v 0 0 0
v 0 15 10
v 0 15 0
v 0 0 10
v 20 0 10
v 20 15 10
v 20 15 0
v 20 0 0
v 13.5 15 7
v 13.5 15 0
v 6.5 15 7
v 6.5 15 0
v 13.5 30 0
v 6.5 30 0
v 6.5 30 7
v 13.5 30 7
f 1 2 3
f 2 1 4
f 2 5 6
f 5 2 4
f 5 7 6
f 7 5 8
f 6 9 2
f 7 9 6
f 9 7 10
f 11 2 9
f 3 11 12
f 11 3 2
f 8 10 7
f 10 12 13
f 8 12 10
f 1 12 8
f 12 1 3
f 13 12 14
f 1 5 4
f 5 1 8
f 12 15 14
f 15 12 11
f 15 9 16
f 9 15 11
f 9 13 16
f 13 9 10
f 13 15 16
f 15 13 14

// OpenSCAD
union(){
    cube([20, 15, 10]);
    translate([10 - 7/2, 15, 0])
        cube([7, 15, 7]);
}
